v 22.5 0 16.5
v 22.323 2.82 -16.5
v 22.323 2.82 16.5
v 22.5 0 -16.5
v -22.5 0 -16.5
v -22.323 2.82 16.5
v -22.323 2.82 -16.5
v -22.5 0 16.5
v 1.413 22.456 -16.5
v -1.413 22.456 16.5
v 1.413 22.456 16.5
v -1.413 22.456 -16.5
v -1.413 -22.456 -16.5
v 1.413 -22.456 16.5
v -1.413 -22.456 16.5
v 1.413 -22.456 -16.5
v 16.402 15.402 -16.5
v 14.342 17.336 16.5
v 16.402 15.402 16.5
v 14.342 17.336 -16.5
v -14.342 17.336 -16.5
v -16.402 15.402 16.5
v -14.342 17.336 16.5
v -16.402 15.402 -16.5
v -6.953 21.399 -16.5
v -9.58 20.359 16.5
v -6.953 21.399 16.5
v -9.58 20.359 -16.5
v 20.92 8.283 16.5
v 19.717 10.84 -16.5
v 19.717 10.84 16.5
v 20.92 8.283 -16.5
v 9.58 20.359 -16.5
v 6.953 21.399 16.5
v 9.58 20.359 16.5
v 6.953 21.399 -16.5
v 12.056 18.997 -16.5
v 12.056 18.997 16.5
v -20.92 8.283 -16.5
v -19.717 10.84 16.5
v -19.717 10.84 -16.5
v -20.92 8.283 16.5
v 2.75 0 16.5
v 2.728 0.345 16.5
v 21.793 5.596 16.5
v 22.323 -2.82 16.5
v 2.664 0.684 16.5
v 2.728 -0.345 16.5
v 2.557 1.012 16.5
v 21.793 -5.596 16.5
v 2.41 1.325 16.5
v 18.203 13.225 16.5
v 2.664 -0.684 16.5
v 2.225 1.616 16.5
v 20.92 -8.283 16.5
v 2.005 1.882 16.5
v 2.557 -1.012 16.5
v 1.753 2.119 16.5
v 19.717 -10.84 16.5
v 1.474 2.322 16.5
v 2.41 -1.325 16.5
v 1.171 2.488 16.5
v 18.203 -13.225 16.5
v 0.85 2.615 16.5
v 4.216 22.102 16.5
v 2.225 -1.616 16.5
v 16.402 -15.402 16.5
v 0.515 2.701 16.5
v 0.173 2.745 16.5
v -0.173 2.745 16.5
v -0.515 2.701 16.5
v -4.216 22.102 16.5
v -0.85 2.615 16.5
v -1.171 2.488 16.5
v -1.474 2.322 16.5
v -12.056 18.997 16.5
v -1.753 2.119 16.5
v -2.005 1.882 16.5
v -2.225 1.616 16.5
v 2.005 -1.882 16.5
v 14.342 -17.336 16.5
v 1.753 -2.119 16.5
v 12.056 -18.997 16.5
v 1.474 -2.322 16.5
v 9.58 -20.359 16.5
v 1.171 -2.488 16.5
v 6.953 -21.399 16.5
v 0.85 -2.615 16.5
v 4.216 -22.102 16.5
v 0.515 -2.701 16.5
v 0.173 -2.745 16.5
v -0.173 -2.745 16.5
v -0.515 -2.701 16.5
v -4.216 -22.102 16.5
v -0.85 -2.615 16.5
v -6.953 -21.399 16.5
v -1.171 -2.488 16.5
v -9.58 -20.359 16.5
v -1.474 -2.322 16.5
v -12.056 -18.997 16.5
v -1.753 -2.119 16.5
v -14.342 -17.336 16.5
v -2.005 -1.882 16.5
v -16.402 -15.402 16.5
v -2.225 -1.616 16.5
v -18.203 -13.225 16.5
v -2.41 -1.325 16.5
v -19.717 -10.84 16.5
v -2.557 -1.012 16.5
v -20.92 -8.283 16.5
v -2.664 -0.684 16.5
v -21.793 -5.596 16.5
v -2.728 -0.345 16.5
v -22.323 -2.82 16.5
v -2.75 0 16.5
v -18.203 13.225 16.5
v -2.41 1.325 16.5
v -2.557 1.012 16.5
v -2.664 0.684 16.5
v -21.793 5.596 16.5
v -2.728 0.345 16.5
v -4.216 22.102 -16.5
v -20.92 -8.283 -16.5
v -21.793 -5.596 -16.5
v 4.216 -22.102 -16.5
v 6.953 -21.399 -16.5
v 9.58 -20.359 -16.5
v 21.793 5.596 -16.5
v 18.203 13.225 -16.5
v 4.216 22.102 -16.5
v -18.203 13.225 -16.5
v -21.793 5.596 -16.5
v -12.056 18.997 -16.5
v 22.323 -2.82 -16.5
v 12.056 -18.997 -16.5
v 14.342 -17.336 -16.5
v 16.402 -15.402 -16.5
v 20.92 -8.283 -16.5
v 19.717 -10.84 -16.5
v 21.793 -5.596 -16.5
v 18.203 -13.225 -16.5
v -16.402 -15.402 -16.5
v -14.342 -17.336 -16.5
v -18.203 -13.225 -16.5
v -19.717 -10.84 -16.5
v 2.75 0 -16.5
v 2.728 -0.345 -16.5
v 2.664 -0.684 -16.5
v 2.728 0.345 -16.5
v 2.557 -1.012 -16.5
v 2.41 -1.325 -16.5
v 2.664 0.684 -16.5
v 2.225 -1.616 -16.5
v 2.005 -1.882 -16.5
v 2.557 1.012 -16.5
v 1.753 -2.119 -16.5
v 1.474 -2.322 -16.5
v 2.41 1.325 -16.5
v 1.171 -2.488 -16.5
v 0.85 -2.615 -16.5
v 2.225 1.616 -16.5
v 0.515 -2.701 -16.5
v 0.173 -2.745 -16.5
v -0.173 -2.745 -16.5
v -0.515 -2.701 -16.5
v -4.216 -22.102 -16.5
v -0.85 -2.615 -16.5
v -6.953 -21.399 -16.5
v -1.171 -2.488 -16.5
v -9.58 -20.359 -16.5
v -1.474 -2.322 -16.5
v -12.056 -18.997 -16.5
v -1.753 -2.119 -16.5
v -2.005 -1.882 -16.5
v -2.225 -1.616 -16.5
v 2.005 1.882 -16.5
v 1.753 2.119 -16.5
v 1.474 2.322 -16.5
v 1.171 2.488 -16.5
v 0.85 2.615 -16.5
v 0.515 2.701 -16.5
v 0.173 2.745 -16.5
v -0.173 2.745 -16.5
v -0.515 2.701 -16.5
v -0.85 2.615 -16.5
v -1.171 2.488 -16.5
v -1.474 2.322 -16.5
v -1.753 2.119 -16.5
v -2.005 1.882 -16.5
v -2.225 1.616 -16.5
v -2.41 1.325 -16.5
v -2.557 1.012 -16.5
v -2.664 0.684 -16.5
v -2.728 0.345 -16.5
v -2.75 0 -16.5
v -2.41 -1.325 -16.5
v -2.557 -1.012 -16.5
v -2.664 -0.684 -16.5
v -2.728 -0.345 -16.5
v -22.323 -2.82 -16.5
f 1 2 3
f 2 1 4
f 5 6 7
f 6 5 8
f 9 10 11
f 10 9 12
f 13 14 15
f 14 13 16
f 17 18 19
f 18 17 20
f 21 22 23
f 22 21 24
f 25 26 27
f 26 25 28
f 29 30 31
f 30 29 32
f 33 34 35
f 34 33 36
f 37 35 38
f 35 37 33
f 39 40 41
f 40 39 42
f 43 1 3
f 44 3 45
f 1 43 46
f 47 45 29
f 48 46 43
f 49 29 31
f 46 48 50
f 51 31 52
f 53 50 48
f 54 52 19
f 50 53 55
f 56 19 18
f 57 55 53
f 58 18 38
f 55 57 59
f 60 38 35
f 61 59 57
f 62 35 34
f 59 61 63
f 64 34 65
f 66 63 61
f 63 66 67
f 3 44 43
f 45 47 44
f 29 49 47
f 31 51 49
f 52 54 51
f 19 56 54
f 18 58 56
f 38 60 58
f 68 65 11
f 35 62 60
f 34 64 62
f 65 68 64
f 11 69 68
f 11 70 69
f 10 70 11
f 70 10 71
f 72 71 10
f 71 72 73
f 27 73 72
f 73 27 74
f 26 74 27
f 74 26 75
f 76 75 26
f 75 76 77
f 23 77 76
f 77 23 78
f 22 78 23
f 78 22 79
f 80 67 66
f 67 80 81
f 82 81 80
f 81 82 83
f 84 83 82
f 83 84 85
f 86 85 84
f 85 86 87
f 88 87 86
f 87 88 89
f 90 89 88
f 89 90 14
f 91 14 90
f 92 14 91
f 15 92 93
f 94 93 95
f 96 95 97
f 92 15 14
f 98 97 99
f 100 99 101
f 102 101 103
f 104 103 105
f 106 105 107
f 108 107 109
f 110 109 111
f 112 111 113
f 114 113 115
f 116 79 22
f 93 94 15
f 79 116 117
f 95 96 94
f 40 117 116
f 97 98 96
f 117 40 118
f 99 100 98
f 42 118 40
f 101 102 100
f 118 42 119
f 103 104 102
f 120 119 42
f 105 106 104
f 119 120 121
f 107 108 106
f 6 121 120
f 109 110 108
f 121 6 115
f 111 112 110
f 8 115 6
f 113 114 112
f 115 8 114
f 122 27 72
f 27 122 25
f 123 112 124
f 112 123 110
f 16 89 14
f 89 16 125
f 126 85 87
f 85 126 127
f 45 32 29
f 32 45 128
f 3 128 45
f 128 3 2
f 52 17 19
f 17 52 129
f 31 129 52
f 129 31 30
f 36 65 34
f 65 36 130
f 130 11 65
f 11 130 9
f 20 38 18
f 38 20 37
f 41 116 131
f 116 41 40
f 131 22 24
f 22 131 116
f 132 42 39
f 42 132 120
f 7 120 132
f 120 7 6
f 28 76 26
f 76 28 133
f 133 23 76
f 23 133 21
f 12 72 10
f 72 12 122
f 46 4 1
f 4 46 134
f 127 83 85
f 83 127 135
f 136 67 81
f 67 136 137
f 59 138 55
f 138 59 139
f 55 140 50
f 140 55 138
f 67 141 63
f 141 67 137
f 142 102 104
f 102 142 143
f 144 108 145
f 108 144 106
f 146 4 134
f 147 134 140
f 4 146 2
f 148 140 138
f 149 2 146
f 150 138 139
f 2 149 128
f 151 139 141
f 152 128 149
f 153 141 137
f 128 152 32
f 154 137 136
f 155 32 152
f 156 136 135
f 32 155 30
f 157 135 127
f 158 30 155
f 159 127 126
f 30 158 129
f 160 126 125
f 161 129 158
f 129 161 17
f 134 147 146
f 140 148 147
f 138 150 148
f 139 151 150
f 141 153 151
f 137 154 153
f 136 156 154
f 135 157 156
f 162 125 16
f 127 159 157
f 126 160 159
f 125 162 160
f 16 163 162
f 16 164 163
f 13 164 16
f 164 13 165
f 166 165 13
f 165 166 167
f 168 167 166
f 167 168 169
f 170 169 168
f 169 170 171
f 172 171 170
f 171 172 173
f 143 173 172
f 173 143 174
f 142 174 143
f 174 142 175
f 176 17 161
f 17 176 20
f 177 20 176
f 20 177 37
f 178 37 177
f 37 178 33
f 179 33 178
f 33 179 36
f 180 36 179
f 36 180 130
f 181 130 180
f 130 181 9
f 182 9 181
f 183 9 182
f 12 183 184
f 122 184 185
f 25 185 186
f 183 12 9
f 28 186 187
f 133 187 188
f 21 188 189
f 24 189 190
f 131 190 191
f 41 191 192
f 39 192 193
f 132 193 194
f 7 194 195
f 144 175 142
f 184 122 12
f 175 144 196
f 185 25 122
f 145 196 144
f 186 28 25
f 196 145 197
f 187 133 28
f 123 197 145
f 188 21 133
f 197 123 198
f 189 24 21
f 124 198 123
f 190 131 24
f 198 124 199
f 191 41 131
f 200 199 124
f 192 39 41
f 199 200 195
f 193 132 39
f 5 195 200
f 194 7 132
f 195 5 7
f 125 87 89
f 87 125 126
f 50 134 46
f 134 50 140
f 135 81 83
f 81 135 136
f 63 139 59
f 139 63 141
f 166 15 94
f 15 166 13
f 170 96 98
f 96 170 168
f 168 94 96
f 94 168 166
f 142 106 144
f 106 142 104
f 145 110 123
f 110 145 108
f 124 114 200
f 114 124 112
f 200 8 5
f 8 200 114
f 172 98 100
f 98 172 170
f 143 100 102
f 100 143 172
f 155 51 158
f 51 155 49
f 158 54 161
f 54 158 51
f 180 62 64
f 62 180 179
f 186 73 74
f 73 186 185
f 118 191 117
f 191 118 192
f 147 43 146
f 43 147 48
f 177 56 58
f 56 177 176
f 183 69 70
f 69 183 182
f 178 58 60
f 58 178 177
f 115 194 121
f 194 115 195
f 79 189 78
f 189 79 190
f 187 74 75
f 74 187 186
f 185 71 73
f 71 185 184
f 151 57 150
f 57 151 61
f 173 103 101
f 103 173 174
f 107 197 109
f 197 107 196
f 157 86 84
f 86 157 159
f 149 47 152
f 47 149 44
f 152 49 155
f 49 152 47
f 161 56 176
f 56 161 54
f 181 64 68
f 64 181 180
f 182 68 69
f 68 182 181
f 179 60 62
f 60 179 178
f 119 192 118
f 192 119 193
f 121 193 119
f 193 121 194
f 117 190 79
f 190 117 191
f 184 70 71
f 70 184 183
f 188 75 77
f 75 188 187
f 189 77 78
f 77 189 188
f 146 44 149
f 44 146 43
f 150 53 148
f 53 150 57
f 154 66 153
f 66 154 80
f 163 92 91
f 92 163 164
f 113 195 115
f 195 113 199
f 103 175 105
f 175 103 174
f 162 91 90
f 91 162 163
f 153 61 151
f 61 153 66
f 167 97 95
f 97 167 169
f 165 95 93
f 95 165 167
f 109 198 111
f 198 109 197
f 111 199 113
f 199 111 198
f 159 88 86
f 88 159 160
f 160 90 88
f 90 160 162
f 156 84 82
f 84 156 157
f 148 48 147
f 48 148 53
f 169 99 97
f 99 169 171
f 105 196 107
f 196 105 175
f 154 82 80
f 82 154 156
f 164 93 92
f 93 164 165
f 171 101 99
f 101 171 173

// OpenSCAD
$fn = 50;


difference() {
	union() {
		translate(v = [0, 0, -16.5000000000]) {
			cylinder(h = 33, r = 22.5000000000);
		}
	}
	union() {
		translate(v = [0, 0, -100.0000000000]) {
			cylinder(h = 200, r = 2.7500000000);
		}
	}
}
